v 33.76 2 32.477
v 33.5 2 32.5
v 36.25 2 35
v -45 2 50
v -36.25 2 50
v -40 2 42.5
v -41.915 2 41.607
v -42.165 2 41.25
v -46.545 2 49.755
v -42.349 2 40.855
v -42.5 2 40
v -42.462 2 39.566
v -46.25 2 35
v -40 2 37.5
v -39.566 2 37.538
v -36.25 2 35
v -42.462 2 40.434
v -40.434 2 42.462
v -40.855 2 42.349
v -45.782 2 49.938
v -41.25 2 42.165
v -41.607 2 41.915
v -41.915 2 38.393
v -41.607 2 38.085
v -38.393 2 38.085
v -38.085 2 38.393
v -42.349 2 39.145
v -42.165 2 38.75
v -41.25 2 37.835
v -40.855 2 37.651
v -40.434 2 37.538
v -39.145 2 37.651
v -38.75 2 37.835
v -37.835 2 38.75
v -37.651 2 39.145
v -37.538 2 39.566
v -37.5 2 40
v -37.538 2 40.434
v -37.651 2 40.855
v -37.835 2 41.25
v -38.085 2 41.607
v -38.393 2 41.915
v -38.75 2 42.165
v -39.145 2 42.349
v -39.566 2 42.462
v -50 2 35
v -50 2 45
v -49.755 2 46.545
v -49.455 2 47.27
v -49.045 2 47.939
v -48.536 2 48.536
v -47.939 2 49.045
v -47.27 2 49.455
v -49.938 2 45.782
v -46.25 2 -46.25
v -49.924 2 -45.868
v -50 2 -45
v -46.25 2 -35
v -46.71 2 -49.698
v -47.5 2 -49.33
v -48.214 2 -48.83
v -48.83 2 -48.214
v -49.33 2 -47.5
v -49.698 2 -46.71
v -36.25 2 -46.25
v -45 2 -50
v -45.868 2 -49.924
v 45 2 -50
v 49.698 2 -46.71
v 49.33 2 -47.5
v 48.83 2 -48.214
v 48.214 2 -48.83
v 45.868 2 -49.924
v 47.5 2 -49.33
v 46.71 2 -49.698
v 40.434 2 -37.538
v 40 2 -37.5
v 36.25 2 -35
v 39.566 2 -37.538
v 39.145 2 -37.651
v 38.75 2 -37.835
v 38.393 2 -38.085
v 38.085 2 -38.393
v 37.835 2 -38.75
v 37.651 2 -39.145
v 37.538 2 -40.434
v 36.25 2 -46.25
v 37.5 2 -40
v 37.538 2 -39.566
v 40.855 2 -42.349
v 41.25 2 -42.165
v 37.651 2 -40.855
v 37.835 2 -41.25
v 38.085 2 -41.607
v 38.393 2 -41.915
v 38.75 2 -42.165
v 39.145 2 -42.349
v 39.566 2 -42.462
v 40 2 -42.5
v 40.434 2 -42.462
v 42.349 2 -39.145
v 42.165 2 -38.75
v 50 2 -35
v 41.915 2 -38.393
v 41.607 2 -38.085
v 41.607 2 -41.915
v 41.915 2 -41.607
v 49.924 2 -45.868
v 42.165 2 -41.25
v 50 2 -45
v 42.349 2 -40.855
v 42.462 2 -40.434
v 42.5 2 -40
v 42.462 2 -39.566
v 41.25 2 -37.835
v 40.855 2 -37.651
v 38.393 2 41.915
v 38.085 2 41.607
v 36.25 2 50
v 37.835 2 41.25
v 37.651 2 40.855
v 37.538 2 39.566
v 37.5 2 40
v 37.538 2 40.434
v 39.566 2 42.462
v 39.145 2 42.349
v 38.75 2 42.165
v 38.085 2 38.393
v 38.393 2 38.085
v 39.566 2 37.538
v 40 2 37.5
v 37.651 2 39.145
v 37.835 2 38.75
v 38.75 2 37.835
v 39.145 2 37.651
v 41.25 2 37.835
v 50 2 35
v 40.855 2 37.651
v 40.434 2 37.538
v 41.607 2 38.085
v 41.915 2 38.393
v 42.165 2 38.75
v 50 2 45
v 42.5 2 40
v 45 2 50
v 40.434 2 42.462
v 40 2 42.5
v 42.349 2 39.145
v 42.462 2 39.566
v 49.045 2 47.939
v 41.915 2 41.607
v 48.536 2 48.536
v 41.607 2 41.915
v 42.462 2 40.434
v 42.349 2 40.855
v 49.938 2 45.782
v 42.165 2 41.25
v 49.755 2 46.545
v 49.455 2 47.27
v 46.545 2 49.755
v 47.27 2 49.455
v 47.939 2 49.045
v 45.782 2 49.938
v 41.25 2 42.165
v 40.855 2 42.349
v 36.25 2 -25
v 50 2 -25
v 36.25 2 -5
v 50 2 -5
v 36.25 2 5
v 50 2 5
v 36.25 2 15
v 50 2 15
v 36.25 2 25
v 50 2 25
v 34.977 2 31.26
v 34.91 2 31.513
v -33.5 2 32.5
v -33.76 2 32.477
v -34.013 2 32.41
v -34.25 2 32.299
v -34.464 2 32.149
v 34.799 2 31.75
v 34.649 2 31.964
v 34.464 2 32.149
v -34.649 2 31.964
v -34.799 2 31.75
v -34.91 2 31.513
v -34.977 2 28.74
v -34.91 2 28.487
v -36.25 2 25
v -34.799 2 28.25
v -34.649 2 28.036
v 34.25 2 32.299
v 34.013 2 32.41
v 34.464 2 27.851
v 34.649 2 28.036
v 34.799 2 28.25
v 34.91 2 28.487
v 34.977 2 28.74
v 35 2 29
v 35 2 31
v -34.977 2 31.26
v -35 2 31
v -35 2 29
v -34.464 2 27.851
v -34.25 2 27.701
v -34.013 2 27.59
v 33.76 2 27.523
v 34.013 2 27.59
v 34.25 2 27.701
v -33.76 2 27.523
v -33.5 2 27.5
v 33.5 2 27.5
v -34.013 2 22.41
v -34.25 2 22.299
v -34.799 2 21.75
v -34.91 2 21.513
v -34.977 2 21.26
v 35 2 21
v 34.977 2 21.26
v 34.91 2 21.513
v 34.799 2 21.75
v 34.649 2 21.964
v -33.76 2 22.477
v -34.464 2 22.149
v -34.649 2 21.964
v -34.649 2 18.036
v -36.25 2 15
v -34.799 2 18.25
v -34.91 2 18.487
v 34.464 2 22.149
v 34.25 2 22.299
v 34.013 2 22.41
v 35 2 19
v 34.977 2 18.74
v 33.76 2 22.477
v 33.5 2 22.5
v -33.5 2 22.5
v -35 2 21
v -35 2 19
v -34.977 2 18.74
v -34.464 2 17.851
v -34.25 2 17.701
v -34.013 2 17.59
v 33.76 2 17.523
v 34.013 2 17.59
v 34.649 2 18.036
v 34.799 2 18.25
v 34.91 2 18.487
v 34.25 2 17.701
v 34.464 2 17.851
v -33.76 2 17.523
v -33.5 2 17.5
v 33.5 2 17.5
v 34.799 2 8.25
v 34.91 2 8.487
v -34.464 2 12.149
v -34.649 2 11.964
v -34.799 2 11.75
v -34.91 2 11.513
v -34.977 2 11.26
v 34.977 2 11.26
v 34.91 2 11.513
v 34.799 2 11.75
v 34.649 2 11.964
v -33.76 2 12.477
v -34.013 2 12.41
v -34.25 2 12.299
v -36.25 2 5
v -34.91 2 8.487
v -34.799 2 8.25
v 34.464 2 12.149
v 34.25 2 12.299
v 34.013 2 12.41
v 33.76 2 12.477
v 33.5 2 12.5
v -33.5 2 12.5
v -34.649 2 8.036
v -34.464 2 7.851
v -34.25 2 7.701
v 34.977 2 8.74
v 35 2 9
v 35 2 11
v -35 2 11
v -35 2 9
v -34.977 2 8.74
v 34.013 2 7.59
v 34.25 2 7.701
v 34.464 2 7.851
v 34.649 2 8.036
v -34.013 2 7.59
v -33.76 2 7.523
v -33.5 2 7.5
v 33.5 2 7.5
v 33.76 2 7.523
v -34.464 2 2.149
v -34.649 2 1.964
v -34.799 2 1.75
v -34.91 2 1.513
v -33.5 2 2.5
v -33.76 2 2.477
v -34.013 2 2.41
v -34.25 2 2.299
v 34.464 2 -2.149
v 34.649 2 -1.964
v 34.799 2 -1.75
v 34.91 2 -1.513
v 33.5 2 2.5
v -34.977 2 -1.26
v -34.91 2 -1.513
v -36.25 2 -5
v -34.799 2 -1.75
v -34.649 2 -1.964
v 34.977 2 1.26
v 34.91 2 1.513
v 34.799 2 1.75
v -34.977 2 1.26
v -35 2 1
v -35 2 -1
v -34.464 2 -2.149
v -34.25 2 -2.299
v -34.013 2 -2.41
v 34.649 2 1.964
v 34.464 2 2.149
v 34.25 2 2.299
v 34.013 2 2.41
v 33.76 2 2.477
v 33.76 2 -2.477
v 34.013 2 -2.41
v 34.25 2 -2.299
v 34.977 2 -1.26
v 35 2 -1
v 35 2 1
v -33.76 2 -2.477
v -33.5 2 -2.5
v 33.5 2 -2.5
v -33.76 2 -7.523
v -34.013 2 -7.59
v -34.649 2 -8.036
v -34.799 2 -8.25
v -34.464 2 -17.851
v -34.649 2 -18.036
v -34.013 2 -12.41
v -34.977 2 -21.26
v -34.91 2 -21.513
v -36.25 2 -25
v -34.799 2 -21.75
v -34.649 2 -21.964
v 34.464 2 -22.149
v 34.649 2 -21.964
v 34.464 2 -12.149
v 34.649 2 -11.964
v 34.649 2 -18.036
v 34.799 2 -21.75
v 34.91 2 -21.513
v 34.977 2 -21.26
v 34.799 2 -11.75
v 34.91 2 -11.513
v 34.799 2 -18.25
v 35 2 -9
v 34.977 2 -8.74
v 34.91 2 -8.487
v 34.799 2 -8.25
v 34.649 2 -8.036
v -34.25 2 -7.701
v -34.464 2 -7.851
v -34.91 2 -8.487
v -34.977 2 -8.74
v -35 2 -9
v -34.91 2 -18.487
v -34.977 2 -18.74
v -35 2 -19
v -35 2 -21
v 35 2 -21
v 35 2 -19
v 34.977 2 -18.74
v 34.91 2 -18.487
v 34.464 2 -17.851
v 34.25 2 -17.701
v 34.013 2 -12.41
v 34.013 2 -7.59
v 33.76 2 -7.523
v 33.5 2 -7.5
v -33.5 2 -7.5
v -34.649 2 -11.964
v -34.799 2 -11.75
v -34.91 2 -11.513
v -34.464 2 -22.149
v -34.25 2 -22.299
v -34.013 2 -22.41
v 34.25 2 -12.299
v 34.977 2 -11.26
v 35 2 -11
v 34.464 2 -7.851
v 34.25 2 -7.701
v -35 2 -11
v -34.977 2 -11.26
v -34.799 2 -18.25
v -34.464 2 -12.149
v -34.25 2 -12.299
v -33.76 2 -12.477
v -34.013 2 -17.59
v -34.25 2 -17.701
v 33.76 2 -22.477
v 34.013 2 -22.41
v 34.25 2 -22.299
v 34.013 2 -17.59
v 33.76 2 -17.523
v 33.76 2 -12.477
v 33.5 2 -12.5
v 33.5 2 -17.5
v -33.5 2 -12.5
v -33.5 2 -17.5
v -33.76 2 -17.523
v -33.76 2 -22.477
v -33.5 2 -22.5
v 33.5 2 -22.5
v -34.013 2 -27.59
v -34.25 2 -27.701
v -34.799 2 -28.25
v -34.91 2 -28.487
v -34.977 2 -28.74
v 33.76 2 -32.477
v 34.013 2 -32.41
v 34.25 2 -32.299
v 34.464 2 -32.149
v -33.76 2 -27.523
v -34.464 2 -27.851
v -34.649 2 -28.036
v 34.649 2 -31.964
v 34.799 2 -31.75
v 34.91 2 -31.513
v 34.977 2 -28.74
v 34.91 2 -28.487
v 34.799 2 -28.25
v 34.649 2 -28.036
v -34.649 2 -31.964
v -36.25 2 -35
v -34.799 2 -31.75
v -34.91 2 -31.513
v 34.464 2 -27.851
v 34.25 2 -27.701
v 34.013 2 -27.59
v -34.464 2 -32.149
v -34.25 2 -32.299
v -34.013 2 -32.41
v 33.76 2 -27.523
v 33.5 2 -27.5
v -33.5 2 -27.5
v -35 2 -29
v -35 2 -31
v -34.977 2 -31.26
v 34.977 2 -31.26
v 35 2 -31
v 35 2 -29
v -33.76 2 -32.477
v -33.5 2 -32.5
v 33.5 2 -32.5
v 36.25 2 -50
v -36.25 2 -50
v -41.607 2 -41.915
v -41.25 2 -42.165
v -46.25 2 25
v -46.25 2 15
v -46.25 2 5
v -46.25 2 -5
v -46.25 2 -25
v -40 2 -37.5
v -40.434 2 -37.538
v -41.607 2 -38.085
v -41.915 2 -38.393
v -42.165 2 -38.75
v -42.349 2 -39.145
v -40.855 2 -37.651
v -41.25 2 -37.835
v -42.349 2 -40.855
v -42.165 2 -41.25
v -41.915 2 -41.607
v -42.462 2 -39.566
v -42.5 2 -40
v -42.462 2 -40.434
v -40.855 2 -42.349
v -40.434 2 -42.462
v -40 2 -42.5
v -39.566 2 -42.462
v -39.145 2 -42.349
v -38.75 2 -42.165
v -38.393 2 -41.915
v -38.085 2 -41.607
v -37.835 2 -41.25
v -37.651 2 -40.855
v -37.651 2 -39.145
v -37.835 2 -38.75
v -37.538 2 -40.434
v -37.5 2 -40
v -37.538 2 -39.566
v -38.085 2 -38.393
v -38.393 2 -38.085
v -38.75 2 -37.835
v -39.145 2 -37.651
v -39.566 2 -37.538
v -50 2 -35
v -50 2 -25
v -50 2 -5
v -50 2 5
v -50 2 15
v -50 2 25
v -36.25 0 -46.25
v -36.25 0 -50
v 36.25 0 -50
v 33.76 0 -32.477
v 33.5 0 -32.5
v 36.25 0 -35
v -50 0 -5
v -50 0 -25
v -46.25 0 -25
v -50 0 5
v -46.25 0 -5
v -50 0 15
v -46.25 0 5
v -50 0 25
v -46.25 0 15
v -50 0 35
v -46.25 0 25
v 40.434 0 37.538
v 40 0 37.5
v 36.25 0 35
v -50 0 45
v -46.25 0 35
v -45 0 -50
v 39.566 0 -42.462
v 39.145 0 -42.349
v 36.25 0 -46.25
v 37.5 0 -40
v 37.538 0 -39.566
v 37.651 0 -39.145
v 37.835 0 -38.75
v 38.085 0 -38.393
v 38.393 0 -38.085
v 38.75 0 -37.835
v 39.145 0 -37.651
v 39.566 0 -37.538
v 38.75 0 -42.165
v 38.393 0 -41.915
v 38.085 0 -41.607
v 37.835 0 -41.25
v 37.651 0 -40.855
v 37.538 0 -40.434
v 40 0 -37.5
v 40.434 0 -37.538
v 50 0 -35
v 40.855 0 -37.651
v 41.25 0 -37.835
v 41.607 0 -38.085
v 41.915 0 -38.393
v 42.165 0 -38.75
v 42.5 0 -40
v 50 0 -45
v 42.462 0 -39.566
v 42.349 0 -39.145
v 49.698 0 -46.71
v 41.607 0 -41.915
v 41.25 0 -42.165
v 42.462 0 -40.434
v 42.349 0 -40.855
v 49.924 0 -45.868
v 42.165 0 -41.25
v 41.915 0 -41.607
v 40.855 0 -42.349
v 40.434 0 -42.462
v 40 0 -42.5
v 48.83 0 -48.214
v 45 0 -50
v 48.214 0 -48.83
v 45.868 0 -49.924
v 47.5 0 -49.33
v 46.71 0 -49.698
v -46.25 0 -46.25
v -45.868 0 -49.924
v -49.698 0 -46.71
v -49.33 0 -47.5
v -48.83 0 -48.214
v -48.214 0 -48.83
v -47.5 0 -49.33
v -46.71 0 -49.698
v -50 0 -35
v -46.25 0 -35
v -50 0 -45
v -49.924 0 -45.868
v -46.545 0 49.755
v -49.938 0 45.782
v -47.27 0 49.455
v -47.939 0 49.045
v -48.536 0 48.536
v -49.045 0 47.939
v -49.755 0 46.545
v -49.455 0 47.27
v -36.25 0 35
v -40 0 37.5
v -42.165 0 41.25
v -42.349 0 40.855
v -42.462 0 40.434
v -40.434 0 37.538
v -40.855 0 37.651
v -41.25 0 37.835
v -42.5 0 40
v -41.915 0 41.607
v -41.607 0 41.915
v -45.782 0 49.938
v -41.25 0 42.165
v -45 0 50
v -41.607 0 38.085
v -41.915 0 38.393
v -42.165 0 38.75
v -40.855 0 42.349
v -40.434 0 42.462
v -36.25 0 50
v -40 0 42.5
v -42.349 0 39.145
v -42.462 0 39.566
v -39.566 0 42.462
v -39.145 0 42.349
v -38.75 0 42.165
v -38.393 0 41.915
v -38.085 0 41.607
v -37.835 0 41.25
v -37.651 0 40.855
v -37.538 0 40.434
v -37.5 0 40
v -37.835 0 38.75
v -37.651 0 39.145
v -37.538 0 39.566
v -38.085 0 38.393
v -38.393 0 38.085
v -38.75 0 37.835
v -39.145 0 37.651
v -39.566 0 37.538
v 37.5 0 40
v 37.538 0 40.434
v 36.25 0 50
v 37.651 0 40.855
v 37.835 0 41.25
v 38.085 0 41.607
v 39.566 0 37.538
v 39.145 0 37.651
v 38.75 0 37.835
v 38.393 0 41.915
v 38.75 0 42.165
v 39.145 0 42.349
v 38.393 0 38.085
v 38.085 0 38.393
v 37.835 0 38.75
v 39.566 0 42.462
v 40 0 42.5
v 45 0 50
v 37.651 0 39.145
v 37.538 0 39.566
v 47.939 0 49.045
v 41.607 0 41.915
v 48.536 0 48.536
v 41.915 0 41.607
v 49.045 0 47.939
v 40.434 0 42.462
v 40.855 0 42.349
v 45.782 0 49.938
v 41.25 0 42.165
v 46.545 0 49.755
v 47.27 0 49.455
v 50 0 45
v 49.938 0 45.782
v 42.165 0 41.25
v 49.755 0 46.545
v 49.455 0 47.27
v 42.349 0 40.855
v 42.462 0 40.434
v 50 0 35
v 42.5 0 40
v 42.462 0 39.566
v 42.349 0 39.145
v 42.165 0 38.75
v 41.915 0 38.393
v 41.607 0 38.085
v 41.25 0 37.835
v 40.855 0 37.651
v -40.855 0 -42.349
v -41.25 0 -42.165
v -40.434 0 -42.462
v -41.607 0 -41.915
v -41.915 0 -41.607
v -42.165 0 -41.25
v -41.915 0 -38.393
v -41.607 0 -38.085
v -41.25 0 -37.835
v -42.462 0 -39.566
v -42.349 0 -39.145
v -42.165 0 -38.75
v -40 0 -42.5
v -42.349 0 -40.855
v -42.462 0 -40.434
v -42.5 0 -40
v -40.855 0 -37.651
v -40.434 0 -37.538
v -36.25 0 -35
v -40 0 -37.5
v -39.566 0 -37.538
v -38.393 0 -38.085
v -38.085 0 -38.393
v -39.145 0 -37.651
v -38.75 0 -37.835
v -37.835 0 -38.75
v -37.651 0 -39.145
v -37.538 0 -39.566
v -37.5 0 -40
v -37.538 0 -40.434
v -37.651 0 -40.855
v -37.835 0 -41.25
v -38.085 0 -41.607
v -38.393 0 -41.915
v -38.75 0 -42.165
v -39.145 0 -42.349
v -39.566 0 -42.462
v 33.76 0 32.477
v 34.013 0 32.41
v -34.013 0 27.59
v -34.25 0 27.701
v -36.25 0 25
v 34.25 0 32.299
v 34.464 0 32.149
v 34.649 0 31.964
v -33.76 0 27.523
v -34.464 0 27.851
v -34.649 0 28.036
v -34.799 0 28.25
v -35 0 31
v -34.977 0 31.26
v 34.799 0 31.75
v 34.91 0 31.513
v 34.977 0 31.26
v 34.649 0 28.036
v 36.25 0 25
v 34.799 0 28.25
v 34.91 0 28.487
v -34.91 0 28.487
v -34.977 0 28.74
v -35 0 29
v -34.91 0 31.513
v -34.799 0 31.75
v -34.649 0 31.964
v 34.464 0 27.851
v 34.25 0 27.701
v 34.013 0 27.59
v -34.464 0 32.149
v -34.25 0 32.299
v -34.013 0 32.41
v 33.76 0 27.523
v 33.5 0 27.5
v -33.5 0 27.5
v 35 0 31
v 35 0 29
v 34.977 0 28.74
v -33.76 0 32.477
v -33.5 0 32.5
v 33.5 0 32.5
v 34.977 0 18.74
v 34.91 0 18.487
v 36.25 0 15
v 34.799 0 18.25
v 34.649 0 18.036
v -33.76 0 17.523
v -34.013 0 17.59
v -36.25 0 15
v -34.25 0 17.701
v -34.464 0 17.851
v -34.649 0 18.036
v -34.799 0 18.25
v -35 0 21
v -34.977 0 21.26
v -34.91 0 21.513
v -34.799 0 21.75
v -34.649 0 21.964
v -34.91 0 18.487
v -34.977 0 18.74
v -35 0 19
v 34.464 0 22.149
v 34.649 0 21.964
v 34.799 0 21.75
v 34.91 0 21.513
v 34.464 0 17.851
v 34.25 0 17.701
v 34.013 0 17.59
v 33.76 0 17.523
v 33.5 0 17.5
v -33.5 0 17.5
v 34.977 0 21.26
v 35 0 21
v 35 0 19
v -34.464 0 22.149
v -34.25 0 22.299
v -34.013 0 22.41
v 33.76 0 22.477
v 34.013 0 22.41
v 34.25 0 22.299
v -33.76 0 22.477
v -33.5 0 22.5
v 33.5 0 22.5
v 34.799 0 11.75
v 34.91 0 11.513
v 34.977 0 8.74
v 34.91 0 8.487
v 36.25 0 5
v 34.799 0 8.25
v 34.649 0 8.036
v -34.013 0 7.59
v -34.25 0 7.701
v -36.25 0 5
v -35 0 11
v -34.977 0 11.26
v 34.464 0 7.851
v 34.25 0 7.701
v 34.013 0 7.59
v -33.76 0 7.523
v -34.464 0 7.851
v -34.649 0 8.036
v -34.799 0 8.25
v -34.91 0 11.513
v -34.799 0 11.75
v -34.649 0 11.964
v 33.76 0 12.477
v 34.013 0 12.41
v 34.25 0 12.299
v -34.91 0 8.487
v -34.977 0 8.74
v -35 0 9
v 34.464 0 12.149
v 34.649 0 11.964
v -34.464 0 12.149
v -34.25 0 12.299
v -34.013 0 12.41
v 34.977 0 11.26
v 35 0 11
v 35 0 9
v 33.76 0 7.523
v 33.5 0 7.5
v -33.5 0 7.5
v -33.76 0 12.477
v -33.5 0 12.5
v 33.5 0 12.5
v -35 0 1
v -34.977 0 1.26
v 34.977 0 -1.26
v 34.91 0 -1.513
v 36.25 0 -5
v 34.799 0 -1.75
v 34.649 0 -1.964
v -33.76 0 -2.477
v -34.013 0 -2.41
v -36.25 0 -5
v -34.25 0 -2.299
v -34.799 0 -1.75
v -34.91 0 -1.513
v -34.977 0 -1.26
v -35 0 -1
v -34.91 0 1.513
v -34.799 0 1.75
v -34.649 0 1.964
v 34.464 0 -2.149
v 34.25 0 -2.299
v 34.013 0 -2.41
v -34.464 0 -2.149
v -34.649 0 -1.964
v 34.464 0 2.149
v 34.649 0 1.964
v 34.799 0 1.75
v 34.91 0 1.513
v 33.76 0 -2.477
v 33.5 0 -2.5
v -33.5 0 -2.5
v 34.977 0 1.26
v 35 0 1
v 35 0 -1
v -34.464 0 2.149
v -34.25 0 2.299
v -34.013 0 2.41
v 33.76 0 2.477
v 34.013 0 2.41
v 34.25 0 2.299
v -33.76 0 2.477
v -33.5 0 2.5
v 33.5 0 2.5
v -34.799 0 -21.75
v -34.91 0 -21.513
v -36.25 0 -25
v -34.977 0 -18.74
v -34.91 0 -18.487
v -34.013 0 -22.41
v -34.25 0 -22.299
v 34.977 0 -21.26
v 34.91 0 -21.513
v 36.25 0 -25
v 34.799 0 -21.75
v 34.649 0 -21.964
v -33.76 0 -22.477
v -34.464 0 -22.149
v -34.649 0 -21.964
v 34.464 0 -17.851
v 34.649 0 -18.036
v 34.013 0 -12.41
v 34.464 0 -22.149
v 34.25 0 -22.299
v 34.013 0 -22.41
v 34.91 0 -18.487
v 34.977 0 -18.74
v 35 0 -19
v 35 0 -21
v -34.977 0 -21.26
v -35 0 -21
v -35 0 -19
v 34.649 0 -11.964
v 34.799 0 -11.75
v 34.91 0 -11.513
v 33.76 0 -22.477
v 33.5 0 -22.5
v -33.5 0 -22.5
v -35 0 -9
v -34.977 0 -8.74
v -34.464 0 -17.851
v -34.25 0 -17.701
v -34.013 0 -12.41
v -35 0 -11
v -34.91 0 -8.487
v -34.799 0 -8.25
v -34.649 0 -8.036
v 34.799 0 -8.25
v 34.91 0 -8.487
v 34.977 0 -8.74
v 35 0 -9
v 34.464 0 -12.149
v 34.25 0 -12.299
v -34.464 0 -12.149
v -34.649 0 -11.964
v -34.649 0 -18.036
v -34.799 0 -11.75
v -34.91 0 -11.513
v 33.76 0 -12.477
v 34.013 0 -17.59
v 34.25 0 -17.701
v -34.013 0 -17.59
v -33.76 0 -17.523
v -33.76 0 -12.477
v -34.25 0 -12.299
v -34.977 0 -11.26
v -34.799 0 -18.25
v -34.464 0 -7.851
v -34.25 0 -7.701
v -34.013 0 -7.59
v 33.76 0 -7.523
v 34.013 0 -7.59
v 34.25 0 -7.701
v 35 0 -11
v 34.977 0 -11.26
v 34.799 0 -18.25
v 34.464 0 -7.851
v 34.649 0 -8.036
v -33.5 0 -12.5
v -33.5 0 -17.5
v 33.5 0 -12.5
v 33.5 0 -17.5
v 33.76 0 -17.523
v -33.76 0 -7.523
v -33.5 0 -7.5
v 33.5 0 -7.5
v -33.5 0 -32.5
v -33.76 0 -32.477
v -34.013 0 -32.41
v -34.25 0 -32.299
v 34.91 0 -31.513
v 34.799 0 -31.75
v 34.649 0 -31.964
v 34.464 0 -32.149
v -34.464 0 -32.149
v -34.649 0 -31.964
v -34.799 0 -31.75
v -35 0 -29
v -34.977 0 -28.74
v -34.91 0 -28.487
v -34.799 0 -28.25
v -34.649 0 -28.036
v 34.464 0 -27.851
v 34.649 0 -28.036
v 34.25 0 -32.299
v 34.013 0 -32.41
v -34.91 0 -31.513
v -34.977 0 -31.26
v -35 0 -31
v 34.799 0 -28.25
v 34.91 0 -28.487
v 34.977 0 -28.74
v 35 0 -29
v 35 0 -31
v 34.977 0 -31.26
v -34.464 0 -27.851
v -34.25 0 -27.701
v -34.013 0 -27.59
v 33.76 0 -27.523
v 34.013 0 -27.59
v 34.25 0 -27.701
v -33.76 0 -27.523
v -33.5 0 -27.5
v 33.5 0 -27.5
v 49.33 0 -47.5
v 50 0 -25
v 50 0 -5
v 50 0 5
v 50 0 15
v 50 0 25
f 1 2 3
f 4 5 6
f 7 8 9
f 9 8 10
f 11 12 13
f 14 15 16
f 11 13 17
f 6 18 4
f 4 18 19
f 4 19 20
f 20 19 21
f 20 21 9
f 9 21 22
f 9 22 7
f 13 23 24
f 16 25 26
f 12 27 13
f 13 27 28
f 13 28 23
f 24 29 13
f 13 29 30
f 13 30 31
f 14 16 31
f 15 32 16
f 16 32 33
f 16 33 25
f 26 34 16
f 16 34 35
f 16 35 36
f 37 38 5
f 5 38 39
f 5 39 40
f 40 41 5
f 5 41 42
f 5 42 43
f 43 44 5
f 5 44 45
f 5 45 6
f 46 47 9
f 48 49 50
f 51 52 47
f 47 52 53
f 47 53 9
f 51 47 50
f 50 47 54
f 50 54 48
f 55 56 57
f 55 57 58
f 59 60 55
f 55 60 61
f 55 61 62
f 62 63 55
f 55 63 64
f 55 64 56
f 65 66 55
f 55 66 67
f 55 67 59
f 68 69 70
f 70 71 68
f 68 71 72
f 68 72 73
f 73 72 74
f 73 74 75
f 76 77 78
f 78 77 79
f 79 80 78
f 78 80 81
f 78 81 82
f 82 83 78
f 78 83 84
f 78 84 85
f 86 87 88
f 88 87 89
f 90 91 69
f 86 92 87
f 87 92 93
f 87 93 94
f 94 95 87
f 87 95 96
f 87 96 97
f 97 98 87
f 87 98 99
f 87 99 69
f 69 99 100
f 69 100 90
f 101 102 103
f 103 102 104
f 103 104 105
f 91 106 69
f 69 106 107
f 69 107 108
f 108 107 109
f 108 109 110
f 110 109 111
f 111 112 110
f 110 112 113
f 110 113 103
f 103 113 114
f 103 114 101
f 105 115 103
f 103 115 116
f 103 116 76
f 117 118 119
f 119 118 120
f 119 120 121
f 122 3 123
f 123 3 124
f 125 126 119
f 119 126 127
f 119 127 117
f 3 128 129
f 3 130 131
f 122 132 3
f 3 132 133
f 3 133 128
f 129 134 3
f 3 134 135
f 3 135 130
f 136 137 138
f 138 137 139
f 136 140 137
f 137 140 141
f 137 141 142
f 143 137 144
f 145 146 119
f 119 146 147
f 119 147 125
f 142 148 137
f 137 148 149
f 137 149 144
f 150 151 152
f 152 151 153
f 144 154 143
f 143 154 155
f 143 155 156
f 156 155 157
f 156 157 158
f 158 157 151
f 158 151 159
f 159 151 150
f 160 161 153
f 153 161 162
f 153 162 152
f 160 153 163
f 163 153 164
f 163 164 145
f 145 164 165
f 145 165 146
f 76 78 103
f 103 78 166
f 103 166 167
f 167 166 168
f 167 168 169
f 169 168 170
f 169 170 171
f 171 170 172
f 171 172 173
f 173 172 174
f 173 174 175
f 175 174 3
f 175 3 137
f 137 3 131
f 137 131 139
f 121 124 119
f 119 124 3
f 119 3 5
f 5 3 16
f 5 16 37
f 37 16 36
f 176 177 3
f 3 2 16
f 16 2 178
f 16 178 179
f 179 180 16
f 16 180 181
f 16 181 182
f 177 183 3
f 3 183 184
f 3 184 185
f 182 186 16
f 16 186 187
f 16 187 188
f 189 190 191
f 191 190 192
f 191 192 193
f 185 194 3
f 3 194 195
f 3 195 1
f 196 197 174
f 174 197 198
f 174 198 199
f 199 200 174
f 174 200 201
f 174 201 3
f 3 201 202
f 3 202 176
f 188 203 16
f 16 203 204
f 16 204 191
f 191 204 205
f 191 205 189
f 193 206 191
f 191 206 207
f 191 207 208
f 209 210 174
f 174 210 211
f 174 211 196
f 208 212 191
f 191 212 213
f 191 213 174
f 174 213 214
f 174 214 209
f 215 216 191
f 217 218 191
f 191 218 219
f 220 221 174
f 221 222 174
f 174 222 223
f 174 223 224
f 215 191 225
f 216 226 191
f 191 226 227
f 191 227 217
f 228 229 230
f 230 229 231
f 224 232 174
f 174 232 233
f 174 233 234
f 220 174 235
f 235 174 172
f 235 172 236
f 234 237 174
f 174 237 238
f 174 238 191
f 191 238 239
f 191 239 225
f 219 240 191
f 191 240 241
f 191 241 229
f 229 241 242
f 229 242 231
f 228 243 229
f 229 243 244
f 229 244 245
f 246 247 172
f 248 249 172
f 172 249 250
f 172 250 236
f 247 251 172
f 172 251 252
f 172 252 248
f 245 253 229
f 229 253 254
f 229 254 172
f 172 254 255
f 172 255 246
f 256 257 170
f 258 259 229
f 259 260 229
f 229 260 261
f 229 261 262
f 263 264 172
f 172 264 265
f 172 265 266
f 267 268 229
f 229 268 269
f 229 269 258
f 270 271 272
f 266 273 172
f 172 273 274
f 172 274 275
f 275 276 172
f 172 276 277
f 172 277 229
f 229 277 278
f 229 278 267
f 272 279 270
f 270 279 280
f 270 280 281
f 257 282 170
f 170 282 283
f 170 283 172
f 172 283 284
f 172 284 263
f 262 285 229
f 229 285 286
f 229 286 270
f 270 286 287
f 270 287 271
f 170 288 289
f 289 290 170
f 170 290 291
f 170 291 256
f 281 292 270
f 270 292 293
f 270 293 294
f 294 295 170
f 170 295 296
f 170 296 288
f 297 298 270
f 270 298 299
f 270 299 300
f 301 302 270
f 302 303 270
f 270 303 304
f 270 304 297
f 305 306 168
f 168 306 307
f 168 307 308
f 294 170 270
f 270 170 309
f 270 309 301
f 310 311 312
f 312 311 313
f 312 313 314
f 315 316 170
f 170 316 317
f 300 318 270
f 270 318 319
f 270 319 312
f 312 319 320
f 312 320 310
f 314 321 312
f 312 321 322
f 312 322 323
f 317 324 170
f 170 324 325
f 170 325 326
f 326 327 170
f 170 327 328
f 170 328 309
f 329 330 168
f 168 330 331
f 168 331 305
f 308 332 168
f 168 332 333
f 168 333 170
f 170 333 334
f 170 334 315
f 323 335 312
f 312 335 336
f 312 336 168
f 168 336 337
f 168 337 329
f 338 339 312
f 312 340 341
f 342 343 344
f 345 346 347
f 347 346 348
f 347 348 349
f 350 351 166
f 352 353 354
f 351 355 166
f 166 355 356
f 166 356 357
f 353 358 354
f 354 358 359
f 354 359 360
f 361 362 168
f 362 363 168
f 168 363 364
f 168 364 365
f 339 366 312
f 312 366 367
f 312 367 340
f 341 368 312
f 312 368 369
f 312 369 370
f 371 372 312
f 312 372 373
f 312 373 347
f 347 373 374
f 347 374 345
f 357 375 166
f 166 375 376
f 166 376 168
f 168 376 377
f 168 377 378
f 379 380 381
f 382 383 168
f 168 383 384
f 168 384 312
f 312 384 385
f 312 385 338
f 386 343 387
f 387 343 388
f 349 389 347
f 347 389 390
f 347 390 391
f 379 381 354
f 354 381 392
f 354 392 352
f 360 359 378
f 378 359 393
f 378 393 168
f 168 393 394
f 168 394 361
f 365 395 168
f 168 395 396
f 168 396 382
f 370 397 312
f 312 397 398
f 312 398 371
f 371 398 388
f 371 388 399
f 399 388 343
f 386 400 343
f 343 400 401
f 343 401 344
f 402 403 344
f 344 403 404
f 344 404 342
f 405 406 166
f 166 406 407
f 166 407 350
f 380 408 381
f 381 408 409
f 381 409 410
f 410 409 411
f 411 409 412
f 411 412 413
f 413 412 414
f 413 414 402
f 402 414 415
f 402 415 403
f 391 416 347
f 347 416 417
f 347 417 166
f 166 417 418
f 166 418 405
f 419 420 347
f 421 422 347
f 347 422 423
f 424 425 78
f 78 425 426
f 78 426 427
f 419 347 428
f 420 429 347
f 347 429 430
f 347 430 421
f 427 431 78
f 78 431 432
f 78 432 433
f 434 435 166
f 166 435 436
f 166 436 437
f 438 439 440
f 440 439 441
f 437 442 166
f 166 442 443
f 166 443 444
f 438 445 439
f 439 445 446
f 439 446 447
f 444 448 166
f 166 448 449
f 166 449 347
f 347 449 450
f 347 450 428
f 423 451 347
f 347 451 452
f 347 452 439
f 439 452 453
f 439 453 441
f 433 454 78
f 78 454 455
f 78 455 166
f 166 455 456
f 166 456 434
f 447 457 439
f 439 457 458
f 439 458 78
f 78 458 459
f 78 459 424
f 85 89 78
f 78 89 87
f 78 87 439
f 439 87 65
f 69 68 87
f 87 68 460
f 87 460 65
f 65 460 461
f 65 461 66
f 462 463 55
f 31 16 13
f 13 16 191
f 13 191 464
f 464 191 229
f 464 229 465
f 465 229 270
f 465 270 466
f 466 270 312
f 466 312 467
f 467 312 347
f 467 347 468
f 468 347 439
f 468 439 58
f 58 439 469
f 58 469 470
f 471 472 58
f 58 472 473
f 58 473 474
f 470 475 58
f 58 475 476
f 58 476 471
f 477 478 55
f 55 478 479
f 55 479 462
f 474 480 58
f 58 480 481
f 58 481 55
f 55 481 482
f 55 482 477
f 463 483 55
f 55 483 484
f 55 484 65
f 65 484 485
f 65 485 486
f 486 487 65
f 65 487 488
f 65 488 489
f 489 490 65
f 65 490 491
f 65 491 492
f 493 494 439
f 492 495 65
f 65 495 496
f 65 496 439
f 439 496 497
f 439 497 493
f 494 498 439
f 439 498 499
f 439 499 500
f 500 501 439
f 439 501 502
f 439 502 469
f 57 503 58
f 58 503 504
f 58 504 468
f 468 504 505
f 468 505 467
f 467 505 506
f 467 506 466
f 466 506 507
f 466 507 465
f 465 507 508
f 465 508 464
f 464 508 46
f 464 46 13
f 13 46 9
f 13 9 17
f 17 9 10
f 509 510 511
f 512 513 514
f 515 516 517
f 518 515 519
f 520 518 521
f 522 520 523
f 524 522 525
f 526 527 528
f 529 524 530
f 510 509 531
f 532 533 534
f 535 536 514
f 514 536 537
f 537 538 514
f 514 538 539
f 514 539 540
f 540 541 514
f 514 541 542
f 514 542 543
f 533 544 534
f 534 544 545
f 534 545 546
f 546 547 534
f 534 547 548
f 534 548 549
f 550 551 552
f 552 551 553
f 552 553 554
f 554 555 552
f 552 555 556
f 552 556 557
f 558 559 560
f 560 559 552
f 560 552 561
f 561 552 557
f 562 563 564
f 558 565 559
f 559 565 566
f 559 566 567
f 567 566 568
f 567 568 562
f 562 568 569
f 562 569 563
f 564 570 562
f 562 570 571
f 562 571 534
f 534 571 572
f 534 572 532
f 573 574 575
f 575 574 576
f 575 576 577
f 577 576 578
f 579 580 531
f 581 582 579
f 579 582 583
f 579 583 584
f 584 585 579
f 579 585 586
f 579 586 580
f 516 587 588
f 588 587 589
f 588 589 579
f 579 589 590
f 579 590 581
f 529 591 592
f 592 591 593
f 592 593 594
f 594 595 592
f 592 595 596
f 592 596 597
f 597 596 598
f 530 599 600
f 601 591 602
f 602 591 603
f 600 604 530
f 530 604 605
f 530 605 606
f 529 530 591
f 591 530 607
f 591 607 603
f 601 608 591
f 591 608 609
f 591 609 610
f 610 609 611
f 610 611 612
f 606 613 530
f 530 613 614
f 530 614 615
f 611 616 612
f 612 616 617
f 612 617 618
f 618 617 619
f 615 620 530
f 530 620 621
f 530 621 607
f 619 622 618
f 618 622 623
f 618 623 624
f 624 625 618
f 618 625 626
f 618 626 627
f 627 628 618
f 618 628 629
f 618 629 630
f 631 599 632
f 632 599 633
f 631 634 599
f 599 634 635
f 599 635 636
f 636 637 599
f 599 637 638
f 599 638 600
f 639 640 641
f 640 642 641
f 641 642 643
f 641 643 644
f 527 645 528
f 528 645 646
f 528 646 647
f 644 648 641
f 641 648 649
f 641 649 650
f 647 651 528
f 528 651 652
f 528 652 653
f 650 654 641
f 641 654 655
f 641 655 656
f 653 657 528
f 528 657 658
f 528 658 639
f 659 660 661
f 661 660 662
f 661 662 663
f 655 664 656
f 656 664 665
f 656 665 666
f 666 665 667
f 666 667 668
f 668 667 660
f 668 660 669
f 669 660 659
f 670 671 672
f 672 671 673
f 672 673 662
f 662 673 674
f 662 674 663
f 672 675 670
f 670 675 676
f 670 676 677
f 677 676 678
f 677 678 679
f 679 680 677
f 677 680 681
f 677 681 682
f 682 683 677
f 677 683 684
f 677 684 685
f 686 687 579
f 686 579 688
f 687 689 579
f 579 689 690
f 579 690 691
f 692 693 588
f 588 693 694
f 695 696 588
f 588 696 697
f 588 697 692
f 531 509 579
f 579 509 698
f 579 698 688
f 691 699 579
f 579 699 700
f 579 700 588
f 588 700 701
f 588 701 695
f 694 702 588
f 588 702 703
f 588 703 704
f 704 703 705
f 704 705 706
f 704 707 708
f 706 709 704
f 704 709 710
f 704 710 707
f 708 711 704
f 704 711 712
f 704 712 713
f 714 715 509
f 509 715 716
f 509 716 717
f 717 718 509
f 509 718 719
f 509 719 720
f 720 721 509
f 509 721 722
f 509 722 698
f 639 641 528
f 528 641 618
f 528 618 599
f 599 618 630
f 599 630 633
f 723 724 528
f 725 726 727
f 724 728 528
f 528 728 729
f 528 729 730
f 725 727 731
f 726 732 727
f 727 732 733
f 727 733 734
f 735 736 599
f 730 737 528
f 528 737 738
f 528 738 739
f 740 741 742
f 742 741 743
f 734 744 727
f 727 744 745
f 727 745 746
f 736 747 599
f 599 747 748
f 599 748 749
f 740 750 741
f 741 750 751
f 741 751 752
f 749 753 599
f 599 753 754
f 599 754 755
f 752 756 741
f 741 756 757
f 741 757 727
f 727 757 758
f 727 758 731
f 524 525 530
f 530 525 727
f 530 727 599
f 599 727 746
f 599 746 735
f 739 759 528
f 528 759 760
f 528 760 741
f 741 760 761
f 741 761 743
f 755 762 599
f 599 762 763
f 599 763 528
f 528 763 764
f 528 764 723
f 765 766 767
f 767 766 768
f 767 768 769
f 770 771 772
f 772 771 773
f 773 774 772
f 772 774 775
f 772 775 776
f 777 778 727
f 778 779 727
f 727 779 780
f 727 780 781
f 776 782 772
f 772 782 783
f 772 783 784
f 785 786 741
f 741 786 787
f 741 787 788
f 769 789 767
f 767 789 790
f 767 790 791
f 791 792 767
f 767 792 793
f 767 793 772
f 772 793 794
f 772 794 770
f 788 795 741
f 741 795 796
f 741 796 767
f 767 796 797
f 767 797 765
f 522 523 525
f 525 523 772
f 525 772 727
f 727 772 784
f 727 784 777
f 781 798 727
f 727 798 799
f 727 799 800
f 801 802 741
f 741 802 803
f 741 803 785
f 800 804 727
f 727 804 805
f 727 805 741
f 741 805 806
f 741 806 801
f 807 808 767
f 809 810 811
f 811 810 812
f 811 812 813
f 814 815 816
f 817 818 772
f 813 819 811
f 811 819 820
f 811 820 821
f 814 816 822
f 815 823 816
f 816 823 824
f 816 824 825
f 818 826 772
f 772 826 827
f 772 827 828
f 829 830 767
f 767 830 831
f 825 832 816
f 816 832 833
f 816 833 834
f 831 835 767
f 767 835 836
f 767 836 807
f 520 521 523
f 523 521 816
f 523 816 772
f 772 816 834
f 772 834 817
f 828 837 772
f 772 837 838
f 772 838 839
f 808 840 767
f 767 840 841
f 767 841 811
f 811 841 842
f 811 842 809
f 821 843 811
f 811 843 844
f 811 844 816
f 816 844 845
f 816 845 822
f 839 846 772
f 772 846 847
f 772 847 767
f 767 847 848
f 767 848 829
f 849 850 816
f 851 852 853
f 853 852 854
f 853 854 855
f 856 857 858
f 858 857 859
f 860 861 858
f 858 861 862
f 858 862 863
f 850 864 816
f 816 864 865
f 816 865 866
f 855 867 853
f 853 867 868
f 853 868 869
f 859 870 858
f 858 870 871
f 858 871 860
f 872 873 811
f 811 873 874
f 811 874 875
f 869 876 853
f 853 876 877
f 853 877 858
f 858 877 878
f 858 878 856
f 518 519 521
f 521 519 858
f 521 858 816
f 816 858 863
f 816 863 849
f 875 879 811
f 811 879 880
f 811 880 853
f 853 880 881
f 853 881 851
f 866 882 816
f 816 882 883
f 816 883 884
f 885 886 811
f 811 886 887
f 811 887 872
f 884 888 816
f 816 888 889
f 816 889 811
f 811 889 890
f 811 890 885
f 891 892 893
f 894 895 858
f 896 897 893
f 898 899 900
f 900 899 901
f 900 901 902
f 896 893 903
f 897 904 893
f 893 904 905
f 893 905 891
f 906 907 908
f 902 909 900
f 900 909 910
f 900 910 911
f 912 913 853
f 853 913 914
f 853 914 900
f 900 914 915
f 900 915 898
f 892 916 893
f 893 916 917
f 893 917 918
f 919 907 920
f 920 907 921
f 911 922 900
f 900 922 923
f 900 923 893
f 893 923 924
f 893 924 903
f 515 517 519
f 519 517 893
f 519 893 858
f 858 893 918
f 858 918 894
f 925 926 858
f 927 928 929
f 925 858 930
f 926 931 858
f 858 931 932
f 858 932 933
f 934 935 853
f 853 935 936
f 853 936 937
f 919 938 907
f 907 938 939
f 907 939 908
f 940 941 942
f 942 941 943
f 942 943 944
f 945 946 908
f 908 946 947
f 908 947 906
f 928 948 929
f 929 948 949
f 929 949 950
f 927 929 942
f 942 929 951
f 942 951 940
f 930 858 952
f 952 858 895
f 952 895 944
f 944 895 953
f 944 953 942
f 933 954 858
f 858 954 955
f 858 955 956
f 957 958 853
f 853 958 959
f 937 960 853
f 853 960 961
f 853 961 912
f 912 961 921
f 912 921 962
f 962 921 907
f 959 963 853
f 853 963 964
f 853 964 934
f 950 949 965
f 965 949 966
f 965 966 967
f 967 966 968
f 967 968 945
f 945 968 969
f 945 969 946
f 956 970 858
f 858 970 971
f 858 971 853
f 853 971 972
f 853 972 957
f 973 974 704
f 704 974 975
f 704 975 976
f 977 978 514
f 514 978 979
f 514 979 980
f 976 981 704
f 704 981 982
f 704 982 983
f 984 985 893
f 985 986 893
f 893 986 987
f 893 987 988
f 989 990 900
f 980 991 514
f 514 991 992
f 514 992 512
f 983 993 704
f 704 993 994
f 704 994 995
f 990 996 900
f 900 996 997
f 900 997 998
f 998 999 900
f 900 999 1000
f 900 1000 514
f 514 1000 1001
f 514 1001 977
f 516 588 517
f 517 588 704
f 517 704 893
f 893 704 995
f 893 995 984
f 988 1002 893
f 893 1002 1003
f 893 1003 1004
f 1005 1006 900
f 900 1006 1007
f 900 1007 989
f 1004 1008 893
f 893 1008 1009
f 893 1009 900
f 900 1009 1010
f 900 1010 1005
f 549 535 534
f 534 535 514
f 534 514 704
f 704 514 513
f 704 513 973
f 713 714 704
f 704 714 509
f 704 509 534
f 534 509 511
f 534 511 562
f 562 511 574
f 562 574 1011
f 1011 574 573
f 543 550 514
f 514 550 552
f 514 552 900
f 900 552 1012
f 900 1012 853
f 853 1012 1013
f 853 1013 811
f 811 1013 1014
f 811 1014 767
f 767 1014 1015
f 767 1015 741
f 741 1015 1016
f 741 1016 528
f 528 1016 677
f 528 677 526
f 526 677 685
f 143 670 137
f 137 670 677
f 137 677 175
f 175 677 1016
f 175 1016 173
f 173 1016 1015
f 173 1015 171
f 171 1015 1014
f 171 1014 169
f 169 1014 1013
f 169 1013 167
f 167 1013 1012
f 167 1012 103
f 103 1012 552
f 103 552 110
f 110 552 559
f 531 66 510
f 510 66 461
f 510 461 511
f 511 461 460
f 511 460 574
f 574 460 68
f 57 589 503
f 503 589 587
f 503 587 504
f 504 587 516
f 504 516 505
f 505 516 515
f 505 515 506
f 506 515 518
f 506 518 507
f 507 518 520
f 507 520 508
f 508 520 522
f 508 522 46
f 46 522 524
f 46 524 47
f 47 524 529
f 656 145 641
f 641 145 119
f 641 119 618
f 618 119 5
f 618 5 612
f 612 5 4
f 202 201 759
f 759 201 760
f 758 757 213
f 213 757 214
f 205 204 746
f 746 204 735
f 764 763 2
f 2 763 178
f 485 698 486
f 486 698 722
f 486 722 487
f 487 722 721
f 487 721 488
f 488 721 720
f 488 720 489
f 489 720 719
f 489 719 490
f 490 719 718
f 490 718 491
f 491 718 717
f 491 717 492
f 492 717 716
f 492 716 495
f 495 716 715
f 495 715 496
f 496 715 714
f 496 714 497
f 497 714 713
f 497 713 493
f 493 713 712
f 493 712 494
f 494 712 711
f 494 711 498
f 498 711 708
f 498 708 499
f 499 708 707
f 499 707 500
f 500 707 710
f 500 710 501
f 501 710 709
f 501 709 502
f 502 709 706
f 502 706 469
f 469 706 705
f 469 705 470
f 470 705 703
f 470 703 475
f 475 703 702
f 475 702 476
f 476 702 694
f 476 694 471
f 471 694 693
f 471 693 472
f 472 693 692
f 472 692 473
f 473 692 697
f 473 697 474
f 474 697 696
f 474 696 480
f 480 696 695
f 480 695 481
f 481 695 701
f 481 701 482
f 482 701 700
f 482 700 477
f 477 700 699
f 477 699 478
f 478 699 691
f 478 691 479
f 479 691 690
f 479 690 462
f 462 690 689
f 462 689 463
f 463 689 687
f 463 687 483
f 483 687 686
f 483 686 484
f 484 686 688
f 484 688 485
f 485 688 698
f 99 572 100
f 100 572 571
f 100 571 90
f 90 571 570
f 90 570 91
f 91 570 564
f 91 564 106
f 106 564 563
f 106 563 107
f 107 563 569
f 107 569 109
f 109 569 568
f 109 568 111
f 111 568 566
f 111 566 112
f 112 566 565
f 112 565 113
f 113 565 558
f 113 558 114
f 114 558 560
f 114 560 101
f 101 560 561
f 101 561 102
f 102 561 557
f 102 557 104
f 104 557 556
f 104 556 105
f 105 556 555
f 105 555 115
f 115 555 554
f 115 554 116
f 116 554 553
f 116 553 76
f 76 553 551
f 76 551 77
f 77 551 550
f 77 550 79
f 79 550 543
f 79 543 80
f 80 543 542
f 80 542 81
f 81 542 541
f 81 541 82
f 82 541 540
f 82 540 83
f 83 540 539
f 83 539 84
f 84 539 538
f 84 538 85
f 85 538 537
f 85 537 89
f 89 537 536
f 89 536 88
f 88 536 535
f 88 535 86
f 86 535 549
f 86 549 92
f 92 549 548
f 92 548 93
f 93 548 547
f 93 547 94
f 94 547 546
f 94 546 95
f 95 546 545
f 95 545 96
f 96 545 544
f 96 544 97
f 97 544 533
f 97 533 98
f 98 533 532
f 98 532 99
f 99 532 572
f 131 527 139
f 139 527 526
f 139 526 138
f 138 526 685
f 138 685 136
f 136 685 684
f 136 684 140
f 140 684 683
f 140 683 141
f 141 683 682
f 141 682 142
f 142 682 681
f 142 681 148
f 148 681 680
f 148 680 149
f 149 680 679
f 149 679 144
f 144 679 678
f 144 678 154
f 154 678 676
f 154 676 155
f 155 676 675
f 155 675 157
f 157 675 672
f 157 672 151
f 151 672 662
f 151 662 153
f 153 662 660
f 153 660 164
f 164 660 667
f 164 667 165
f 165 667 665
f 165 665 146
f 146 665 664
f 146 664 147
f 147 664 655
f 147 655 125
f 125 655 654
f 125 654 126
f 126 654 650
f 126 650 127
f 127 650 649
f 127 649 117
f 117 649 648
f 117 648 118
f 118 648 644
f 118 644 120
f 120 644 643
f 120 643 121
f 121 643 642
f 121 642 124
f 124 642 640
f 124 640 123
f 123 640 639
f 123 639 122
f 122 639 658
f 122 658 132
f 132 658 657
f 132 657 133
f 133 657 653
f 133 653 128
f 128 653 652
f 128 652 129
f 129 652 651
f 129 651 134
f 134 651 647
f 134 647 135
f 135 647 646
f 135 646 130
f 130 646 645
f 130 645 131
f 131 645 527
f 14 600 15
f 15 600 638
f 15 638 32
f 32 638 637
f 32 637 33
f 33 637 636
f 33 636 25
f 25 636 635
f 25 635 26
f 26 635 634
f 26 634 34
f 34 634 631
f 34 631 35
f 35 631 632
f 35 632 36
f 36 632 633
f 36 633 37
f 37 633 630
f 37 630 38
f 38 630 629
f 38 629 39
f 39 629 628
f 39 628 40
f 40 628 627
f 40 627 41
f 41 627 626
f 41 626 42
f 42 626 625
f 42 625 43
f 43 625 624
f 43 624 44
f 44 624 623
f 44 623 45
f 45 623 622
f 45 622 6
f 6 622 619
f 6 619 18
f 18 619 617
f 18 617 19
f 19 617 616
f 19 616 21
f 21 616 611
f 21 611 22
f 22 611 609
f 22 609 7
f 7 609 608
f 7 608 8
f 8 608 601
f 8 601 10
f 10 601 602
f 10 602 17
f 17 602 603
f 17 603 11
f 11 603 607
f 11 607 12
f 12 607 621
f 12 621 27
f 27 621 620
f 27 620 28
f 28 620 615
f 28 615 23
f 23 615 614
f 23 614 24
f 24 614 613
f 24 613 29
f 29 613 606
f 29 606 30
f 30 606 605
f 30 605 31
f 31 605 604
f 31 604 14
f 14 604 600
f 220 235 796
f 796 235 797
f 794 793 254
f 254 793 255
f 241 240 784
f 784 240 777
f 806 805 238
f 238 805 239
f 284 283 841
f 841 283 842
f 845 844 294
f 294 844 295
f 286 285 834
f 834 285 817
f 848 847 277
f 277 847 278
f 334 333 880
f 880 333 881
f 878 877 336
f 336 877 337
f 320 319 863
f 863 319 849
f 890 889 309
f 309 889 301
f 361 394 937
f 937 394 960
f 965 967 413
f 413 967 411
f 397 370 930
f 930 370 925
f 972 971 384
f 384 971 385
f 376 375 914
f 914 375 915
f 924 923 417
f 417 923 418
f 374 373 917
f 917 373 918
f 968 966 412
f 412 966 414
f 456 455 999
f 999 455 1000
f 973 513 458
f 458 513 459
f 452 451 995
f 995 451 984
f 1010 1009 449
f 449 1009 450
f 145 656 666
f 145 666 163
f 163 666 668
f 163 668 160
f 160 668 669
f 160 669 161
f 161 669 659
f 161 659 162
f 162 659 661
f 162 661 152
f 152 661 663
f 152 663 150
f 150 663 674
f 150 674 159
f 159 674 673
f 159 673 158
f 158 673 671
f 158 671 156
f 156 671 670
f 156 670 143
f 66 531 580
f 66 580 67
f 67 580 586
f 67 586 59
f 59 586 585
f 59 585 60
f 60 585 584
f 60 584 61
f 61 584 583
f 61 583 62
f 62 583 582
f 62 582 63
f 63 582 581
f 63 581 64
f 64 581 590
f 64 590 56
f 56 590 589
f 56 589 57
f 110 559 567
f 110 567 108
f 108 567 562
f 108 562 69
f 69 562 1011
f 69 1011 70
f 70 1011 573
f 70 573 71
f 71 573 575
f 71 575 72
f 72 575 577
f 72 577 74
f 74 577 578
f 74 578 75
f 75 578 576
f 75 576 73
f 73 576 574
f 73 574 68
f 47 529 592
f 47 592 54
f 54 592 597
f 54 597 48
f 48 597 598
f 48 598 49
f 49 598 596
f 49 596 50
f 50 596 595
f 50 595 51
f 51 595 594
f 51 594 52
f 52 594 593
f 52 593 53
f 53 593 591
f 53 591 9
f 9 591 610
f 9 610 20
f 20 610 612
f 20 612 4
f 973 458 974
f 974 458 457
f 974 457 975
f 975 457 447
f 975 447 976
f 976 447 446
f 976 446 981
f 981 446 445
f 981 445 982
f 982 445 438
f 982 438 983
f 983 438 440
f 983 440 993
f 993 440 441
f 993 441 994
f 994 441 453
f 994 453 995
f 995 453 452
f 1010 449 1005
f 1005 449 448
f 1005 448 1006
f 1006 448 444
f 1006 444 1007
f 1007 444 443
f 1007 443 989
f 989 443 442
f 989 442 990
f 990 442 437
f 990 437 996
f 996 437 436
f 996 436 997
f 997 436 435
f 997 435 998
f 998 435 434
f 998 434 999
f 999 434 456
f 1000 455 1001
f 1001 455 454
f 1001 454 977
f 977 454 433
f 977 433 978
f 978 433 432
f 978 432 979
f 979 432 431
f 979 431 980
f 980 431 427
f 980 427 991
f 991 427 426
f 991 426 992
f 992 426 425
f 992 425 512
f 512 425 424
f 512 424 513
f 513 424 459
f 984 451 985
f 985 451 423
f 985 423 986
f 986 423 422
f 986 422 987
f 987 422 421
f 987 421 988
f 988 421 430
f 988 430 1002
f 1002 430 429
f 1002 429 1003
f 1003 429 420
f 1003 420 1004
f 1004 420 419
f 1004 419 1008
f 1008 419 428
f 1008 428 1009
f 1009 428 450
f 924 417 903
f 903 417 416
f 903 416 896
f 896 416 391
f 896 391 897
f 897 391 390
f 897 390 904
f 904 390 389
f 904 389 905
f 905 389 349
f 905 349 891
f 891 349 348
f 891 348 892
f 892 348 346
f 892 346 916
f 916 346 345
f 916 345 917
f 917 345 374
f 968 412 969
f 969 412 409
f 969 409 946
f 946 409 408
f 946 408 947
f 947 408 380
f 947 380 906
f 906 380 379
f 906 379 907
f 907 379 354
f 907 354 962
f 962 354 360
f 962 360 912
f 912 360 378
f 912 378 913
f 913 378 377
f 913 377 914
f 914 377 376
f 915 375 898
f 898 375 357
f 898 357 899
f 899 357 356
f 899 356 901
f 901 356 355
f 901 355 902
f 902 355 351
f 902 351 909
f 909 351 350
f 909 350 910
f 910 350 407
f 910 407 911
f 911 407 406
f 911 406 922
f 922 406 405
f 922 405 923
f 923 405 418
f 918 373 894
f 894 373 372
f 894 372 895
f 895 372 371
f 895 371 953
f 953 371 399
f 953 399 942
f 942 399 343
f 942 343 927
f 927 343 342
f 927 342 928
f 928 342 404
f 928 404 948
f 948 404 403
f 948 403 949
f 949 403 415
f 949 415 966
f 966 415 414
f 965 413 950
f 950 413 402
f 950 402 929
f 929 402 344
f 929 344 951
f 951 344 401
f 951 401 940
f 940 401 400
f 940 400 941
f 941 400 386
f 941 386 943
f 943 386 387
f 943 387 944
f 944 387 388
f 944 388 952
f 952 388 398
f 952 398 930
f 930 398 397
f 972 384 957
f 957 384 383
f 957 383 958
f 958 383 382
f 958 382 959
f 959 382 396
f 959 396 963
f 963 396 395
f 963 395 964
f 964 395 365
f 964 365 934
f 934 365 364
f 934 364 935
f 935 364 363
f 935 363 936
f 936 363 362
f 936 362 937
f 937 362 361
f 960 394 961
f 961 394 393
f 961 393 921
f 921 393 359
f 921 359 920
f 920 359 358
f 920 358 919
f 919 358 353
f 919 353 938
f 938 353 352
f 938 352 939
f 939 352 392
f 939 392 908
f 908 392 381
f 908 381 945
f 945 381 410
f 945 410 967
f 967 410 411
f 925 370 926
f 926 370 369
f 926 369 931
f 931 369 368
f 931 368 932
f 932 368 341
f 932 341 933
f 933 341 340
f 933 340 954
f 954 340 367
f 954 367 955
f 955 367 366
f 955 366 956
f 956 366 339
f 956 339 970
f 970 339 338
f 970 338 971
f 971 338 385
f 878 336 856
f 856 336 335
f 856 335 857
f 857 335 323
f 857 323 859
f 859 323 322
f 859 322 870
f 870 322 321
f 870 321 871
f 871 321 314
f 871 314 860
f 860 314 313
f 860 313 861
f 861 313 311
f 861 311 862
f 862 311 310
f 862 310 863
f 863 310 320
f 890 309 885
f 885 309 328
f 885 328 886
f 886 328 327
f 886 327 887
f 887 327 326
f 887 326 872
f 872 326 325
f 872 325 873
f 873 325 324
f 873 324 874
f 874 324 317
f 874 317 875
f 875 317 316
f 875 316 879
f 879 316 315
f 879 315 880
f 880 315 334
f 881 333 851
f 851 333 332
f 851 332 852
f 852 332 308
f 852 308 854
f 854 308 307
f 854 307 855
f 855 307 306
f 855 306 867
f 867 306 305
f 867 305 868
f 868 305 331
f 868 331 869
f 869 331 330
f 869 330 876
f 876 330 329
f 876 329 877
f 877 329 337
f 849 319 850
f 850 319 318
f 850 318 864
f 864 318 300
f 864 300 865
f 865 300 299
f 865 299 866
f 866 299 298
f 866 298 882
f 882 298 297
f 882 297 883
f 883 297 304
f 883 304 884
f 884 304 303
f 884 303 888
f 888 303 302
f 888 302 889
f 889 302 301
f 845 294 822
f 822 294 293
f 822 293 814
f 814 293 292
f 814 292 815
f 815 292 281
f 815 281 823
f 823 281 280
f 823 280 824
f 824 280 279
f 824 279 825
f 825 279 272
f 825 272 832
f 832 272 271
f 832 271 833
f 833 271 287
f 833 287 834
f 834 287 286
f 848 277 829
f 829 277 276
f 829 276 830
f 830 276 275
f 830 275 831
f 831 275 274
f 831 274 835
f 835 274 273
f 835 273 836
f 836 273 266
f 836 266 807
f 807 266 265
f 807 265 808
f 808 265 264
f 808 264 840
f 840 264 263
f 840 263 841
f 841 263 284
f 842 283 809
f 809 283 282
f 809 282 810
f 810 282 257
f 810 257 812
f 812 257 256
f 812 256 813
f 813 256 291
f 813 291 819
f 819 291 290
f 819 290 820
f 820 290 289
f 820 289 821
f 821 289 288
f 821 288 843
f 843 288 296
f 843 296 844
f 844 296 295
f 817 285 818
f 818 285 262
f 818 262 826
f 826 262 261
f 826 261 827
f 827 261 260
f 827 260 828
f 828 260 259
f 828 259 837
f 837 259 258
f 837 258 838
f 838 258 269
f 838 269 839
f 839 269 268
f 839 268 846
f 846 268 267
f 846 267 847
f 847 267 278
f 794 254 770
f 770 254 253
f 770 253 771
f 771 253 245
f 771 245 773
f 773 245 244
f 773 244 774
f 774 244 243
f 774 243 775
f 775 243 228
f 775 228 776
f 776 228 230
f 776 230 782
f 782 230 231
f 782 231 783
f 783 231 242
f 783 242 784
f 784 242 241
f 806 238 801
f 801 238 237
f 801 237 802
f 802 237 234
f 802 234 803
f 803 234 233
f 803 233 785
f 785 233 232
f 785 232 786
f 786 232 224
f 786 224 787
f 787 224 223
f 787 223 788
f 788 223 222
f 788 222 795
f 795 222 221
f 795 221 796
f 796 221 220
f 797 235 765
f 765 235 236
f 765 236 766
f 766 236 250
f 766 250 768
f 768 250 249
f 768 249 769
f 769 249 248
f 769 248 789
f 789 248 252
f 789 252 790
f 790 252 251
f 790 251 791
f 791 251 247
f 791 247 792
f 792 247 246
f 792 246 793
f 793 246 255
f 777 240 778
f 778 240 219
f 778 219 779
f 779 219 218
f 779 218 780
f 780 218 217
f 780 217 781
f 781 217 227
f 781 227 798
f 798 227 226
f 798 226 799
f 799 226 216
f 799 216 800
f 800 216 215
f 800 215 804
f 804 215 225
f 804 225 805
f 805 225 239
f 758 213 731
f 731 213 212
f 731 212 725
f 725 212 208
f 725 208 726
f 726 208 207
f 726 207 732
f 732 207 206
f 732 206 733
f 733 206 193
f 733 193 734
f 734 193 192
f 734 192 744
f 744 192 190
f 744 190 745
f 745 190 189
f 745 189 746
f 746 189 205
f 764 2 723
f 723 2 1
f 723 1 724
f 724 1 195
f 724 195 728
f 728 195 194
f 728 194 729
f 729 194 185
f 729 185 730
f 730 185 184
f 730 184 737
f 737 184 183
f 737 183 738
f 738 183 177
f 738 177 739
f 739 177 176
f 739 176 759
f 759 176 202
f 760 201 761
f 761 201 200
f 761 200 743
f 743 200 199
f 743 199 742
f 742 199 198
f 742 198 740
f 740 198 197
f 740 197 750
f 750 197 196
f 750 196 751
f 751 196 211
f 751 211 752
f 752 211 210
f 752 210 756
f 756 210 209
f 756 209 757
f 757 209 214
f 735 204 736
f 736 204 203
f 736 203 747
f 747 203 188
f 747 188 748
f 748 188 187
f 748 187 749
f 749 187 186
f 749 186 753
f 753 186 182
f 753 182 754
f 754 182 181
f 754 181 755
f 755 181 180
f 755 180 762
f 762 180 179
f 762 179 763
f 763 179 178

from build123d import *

# Parameters (mm, degrees)
SKETCH1_W           = 100
SKETCH1_H           = 100
SKETCH1_R           = 2.5
SKETCH1_W_2         = 70
SKETCH1_H_2         = 5
BOSS_EXTRUDE1_DEPTH = 2
FILLET1_R           = 5
FILLET2_R           = 1.5


with BuildPart() as part:
    # Sketch1 → Boss-Extrude1 (new body)
    with BuildSketch(Plane(origin=(0, 0, 0), x_dir=(1, 0, 0), z_dir=(0, 1, 0))):
        Rectangle(SKETCH1_W, SKETCH1_H)
        with Locations((-40, 40)):
            Circle(SKETCH1_R, mode=Mode.SUBTRACT)
        with Locations((40, 40)):
            Circle(SKETCH1_R, mode=Mode.SUBTRACT)
        with Locations((40, -40)):
            Circle(SKETCH1_R, mode=Mode.SUBTRACT)
        with Locations((-40, -40)):
            Circle(SKETCH1_R, mode=Mode.SUBTRACT)
        with Locations((0, -30)):
            Rectangle(SKETCH1_W_2, SKETCH1_H_2, mode=Mode.SUBTRACT)
        with Locations((0, -20)):
            Rectangle(SKETCH1_W_2, SKETCH1_H_2, mode=Mode.SUBTRACT)
        with Locations((0, -10)):
            Rectangle(SKETCH1_W_2, SKETCH1_H_2, mode=Mode.SUBTRACT)
        Rectangle(SKETCH1_W_2, SKETCH1_H_2, mode=Mode.SUBTRACT)
        with Locations((0, 10)):
            Rectangle(SKETCH1_W_2, SKETCH1_H_2, mode=Mode.SUBTRACT)
        with Locations((0, 20)):
            Rectangle(SKETCH1_W_2, SKETCH1_H_2, mode=Mode.SUBTRACT)
        with Locations((0, 30)):
            Rectangle(SKETCH1_W_2, SKETCH1_H_2, mode=Mode.SUBTRACT)
    extrude(amount=BOSS_EXTRUDE1_DEPTH)

    # Fillet1
    fillet1_edges = [part.edges().sort_by_distance(p)[0] for p in [
        (50, 1, 50),
        (-50, 1, 50),
        (-50, 1, -50),
        (50, 1, -50),
    ]]
    fillet(fillet1_edges, radius=FILLET1_R)

    # Fillet2
    fillet2_edges = [part.edges().sort_by_distance(p)[0] for p in [
        (35, 1, -27.5),
        (35, 1, -32.5),
        (-35, 1, -32.5),
        (-35, 1, -27.5),
        (35, 1, 32.5),
        (35, 1, 27.5),
        (-35, 1, 27.5),
        (-35, 1, 32.5),
        (35, 1, 22.5),
        (35, 1, 17.5),
        (-35, 1, 17.5),
        (-35, 1, 22.5),
        (35, 1, 12.5),
        (35, 1, 7.5),
        (-35, 1, 7.5),
        (-35, 1, 12.5),
        (35, 1, 2.5),
        (35, 1, -2.5),
        (-35, 1, -2.5),
        (-35, 1, 2.5),
        (35, 1, -7.5),
        (35, 1, -12.5),
        (-35, 1, -12.5),
        (-35, 1, -7.5),
        (35, 1, -17.5),
        (35, 1, -22.5),
        (-35, 1, -22.5),
        (-35, 1, -17.5),
    ]]
    fillet(fillet2_edges, radius=FILLET2_R)


solid = part.part
